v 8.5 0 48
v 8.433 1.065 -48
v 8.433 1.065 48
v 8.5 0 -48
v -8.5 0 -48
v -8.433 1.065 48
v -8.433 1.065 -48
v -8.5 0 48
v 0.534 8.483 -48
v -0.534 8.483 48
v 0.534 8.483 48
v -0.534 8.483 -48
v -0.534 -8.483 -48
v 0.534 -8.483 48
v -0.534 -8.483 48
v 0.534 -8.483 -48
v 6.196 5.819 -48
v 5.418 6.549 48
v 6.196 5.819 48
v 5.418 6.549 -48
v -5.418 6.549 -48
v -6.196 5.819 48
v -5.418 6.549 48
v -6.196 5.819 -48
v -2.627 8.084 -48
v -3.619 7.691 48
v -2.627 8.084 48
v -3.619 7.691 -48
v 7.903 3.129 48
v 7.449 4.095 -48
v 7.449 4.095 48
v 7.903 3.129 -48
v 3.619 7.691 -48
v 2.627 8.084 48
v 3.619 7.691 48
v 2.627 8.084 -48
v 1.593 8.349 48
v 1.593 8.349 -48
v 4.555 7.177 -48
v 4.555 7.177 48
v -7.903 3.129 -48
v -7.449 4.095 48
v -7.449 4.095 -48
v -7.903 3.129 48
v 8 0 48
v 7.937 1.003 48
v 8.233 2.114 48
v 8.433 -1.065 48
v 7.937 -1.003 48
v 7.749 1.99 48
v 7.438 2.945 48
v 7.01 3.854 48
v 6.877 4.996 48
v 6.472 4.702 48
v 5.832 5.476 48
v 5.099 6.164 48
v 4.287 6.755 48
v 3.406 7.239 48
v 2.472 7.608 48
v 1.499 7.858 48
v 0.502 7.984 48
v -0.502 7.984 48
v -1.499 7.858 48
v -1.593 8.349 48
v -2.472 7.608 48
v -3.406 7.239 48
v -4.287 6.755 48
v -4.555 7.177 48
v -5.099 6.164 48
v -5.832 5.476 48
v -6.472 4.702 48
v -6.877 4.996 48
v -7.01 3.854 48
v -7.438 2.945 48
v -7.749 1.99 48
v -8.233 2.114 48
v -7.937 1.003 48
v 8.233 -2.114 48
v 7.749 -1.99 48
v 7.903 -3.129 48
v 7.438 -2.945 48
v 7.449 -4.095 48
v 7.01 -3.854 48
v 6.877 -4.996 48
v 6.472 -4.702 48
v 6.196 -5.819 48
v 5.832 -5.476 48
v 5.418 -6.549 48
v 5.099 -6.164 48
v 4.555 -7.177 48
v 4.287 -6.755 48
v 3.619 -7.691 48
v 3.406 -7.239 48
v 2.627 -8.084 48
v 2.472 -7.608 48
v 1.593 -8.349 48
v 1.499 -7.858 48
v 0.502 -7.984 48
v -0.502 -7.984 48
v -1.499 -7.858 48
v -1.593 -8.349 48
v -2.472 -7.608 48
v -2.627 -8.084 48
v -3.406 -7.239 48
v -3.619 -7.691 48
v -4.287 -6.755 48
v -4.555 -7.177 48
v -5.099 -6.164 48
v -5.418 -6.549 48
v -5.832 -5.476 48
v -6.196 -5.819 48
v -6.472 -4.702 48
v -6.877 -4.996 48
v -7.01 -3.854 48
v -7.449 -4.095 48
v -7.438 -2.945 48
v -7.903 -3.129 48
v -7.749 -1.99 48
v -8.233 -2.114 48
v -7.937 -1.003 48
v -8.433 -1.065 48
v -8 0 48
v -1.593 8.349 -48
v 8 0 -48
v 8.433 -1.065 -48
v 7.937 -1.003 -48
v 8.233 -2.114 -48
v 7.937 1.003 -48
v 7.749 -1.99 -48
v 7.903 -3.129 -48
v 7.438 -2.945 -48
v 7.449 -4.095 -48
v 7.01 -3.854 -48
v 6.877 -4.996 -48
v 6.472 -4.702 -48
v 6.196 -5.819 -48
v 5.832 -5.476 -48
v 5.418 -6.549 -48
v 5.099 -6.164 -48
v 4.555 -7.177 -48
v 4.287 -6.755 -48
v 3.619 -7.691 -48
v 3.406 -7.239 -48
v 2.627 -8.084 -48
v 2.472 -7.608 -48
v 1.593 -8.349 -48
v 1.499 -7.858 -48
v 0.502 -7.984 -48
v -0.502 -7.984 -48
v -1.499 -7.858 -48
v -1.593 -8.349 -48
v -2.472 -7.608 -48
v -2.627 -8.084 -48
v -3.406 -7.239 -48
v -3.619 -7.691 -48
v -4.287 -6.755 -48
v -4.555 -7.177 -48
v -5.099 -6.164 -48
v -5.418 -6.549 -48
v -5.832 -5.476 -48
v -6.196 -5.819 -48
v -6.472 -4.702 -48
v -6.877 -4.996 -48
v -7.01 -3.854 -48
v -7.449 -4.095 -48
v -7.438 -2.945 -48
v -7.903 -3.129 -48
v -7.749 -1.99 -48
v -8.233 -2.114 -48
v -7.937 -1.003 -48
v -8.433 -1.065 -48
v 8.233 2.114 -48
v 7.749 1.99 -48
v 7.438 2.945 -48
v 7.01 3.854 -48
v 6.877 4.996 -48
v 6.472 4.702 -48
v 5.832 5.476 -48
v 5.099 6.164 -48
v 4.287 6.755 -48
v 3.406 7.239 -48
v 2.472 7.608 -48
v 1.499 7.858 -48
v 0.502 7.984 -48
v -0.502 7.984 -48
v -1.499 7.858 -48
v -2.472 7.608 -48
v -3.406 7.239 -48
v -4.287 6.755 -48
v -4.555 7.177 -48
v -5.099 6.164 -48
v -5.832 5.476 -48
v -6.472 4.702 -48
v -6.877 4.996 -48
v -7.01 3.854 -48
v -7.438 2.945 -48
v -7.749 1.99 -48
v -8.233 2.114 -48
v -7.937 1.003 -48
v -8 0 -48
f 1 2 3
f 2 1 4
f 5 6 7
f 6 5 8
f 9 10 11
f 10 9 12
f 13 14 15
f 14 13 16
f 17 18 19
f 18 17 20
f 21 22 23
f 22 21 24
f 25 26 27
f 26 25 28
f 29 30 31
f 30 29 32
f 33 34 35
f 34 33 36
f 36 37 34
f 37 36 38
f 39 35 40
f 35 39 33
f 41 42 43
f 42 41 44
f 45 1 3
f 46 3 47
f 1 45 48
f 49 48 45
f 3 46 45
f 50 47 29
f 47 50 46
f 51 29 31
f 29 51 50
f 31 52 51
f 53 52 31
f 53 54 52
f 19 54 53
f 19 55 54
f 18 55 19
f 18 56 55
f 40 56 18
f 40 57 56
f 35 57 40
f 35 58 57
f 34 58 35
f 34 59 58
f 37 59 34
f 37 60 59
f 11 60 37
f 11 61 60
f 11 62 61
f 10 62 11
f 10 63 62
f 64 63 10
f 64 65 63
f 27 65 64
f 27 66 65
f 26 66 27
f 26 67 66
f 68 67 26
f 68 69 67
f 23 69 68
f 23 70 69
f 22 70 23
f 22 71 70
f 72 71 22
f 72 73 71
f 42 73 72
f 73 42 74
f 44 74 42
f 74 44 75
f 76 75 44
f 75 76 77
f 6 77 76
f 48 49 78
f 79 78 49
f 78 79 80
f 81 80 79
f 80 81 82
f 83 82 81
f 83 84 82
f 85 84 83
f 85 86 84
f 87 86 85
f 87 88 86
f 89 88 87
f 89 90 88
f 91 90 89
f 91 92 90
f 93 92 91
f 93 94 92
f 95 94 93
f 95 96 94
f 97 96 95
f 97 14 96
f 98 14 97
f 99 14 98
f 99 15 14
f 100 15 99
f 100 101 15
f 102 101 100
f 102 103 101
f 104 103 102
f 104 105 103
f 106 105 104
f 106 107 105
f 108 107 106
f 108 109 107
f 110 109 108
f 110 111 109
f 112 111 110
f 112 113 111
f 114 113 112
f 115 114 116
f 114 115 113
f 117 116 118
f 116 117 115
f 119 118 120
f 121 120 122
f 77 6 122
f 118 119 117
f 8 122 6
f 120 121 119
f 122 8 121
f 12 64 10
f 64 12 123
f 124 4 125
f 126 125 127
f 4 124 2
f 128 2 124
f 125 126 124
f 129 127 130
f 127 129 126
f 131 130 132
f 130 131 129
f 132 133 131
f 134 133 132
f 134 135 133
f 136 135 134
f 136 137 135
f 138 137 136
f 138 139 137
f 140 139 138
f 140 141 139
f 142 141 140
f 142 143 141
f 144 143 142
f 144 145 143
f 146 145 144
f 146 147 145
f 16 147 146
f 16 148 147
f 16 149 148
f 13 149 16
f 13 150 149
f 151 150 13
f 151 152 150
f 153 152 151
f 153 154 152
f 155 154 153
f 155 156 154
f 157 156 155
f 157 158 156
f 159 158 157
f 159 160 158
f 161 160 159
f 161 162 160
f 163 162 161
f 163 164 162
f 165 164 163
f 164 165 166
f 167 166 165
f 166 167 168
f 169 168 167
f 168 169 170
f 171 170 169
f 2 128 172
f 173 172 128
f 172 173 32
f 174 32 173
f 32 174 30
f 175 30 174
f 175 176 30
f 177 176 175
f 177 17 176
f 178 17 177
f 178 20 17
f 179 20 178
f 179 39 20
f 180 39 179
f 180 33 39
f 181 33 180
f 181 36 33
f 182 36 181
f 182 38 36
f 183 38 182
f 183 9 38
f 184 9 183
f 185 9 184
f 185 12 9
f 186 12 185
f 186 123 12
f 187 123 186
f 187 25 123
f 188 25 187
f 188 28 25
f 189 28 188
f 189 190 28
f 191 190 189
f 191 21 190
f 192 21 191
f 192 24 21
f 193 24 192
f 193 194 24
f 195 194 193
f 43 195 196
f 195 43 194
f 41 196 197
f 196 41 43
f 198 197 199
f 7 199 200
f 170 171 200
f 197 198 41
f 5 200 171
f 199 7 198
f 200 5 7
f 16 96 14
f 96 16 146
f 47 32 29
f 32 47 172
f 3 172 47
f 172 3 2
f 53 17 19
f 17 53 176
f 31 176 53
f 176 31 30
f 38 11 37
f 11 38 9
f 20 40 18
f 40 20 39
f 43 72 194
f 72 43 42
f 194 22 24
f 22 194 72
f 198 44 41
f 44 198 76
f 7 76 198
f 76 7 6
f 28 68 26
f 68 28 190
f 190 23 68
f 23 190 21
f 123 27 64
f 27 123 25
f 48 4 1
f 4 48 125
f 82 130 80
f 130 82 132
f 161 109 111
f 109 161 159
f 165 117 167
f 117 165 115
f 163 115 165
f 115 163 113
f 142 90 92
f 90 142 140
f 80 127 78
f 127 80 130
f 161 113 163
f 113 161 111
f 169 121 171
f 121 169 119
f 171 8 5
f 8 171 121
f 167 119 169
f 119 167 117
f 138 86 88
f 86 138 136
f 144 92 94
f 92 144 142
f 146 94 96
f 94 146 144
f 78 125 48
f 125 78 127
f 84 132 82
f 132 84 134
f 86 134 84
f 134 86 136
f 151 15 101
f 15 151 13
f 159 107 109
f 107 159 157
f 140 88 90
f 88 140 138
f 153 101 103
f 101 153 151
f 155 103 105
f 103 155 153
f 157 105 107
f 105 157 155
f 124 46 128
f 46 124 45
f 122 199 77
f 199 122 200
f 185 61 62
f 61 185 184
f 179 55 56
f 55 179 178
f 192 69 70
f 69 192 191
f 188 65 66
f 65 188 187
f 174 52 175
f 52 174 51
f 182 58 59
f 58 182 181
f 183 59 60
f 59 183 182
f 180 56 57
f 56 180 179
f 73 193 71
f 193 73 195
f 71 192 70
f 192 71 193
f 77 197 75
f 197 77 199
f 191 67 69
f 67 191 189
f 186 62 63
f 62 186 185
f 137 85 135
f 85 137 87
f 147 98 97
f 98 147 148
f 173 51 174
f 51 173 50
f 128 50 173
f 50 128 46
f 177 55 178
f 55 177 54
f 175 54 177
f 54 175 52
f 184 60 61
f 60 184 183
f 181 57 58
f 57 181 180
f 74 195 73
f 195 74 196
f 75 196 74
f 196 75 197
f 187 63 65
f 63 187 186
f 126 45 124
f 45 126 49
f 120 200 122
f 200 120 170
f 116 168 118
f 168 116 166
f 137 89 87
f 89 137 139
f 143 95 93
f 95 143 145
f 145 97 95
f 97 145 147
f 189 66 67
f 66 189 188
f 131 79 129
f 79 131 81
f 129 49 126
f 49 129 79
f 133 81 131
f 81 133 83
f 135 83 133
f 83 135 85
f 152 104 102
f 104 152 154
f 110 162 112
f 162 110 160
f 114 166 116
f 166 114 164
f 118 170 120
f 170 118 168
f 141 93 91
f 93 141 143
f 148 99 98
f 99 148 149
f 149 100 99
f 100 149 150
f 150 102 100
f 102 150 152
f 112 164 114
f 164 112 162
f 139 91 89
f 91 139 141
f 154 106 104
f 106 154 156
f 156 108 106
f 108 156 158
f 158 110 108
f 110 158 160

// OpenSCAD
$fn = 50;


difference() {
	union() {
		translate(v = [0, 0, -48.0000000000]) {
			cylinder(h = 96, r = 8.5000000000);
		}
	}
	union() {
		translate(v = [0, 0, -100.0000000000]) {
			cylinder(h = 200, r = 8);
		}
	}
}
